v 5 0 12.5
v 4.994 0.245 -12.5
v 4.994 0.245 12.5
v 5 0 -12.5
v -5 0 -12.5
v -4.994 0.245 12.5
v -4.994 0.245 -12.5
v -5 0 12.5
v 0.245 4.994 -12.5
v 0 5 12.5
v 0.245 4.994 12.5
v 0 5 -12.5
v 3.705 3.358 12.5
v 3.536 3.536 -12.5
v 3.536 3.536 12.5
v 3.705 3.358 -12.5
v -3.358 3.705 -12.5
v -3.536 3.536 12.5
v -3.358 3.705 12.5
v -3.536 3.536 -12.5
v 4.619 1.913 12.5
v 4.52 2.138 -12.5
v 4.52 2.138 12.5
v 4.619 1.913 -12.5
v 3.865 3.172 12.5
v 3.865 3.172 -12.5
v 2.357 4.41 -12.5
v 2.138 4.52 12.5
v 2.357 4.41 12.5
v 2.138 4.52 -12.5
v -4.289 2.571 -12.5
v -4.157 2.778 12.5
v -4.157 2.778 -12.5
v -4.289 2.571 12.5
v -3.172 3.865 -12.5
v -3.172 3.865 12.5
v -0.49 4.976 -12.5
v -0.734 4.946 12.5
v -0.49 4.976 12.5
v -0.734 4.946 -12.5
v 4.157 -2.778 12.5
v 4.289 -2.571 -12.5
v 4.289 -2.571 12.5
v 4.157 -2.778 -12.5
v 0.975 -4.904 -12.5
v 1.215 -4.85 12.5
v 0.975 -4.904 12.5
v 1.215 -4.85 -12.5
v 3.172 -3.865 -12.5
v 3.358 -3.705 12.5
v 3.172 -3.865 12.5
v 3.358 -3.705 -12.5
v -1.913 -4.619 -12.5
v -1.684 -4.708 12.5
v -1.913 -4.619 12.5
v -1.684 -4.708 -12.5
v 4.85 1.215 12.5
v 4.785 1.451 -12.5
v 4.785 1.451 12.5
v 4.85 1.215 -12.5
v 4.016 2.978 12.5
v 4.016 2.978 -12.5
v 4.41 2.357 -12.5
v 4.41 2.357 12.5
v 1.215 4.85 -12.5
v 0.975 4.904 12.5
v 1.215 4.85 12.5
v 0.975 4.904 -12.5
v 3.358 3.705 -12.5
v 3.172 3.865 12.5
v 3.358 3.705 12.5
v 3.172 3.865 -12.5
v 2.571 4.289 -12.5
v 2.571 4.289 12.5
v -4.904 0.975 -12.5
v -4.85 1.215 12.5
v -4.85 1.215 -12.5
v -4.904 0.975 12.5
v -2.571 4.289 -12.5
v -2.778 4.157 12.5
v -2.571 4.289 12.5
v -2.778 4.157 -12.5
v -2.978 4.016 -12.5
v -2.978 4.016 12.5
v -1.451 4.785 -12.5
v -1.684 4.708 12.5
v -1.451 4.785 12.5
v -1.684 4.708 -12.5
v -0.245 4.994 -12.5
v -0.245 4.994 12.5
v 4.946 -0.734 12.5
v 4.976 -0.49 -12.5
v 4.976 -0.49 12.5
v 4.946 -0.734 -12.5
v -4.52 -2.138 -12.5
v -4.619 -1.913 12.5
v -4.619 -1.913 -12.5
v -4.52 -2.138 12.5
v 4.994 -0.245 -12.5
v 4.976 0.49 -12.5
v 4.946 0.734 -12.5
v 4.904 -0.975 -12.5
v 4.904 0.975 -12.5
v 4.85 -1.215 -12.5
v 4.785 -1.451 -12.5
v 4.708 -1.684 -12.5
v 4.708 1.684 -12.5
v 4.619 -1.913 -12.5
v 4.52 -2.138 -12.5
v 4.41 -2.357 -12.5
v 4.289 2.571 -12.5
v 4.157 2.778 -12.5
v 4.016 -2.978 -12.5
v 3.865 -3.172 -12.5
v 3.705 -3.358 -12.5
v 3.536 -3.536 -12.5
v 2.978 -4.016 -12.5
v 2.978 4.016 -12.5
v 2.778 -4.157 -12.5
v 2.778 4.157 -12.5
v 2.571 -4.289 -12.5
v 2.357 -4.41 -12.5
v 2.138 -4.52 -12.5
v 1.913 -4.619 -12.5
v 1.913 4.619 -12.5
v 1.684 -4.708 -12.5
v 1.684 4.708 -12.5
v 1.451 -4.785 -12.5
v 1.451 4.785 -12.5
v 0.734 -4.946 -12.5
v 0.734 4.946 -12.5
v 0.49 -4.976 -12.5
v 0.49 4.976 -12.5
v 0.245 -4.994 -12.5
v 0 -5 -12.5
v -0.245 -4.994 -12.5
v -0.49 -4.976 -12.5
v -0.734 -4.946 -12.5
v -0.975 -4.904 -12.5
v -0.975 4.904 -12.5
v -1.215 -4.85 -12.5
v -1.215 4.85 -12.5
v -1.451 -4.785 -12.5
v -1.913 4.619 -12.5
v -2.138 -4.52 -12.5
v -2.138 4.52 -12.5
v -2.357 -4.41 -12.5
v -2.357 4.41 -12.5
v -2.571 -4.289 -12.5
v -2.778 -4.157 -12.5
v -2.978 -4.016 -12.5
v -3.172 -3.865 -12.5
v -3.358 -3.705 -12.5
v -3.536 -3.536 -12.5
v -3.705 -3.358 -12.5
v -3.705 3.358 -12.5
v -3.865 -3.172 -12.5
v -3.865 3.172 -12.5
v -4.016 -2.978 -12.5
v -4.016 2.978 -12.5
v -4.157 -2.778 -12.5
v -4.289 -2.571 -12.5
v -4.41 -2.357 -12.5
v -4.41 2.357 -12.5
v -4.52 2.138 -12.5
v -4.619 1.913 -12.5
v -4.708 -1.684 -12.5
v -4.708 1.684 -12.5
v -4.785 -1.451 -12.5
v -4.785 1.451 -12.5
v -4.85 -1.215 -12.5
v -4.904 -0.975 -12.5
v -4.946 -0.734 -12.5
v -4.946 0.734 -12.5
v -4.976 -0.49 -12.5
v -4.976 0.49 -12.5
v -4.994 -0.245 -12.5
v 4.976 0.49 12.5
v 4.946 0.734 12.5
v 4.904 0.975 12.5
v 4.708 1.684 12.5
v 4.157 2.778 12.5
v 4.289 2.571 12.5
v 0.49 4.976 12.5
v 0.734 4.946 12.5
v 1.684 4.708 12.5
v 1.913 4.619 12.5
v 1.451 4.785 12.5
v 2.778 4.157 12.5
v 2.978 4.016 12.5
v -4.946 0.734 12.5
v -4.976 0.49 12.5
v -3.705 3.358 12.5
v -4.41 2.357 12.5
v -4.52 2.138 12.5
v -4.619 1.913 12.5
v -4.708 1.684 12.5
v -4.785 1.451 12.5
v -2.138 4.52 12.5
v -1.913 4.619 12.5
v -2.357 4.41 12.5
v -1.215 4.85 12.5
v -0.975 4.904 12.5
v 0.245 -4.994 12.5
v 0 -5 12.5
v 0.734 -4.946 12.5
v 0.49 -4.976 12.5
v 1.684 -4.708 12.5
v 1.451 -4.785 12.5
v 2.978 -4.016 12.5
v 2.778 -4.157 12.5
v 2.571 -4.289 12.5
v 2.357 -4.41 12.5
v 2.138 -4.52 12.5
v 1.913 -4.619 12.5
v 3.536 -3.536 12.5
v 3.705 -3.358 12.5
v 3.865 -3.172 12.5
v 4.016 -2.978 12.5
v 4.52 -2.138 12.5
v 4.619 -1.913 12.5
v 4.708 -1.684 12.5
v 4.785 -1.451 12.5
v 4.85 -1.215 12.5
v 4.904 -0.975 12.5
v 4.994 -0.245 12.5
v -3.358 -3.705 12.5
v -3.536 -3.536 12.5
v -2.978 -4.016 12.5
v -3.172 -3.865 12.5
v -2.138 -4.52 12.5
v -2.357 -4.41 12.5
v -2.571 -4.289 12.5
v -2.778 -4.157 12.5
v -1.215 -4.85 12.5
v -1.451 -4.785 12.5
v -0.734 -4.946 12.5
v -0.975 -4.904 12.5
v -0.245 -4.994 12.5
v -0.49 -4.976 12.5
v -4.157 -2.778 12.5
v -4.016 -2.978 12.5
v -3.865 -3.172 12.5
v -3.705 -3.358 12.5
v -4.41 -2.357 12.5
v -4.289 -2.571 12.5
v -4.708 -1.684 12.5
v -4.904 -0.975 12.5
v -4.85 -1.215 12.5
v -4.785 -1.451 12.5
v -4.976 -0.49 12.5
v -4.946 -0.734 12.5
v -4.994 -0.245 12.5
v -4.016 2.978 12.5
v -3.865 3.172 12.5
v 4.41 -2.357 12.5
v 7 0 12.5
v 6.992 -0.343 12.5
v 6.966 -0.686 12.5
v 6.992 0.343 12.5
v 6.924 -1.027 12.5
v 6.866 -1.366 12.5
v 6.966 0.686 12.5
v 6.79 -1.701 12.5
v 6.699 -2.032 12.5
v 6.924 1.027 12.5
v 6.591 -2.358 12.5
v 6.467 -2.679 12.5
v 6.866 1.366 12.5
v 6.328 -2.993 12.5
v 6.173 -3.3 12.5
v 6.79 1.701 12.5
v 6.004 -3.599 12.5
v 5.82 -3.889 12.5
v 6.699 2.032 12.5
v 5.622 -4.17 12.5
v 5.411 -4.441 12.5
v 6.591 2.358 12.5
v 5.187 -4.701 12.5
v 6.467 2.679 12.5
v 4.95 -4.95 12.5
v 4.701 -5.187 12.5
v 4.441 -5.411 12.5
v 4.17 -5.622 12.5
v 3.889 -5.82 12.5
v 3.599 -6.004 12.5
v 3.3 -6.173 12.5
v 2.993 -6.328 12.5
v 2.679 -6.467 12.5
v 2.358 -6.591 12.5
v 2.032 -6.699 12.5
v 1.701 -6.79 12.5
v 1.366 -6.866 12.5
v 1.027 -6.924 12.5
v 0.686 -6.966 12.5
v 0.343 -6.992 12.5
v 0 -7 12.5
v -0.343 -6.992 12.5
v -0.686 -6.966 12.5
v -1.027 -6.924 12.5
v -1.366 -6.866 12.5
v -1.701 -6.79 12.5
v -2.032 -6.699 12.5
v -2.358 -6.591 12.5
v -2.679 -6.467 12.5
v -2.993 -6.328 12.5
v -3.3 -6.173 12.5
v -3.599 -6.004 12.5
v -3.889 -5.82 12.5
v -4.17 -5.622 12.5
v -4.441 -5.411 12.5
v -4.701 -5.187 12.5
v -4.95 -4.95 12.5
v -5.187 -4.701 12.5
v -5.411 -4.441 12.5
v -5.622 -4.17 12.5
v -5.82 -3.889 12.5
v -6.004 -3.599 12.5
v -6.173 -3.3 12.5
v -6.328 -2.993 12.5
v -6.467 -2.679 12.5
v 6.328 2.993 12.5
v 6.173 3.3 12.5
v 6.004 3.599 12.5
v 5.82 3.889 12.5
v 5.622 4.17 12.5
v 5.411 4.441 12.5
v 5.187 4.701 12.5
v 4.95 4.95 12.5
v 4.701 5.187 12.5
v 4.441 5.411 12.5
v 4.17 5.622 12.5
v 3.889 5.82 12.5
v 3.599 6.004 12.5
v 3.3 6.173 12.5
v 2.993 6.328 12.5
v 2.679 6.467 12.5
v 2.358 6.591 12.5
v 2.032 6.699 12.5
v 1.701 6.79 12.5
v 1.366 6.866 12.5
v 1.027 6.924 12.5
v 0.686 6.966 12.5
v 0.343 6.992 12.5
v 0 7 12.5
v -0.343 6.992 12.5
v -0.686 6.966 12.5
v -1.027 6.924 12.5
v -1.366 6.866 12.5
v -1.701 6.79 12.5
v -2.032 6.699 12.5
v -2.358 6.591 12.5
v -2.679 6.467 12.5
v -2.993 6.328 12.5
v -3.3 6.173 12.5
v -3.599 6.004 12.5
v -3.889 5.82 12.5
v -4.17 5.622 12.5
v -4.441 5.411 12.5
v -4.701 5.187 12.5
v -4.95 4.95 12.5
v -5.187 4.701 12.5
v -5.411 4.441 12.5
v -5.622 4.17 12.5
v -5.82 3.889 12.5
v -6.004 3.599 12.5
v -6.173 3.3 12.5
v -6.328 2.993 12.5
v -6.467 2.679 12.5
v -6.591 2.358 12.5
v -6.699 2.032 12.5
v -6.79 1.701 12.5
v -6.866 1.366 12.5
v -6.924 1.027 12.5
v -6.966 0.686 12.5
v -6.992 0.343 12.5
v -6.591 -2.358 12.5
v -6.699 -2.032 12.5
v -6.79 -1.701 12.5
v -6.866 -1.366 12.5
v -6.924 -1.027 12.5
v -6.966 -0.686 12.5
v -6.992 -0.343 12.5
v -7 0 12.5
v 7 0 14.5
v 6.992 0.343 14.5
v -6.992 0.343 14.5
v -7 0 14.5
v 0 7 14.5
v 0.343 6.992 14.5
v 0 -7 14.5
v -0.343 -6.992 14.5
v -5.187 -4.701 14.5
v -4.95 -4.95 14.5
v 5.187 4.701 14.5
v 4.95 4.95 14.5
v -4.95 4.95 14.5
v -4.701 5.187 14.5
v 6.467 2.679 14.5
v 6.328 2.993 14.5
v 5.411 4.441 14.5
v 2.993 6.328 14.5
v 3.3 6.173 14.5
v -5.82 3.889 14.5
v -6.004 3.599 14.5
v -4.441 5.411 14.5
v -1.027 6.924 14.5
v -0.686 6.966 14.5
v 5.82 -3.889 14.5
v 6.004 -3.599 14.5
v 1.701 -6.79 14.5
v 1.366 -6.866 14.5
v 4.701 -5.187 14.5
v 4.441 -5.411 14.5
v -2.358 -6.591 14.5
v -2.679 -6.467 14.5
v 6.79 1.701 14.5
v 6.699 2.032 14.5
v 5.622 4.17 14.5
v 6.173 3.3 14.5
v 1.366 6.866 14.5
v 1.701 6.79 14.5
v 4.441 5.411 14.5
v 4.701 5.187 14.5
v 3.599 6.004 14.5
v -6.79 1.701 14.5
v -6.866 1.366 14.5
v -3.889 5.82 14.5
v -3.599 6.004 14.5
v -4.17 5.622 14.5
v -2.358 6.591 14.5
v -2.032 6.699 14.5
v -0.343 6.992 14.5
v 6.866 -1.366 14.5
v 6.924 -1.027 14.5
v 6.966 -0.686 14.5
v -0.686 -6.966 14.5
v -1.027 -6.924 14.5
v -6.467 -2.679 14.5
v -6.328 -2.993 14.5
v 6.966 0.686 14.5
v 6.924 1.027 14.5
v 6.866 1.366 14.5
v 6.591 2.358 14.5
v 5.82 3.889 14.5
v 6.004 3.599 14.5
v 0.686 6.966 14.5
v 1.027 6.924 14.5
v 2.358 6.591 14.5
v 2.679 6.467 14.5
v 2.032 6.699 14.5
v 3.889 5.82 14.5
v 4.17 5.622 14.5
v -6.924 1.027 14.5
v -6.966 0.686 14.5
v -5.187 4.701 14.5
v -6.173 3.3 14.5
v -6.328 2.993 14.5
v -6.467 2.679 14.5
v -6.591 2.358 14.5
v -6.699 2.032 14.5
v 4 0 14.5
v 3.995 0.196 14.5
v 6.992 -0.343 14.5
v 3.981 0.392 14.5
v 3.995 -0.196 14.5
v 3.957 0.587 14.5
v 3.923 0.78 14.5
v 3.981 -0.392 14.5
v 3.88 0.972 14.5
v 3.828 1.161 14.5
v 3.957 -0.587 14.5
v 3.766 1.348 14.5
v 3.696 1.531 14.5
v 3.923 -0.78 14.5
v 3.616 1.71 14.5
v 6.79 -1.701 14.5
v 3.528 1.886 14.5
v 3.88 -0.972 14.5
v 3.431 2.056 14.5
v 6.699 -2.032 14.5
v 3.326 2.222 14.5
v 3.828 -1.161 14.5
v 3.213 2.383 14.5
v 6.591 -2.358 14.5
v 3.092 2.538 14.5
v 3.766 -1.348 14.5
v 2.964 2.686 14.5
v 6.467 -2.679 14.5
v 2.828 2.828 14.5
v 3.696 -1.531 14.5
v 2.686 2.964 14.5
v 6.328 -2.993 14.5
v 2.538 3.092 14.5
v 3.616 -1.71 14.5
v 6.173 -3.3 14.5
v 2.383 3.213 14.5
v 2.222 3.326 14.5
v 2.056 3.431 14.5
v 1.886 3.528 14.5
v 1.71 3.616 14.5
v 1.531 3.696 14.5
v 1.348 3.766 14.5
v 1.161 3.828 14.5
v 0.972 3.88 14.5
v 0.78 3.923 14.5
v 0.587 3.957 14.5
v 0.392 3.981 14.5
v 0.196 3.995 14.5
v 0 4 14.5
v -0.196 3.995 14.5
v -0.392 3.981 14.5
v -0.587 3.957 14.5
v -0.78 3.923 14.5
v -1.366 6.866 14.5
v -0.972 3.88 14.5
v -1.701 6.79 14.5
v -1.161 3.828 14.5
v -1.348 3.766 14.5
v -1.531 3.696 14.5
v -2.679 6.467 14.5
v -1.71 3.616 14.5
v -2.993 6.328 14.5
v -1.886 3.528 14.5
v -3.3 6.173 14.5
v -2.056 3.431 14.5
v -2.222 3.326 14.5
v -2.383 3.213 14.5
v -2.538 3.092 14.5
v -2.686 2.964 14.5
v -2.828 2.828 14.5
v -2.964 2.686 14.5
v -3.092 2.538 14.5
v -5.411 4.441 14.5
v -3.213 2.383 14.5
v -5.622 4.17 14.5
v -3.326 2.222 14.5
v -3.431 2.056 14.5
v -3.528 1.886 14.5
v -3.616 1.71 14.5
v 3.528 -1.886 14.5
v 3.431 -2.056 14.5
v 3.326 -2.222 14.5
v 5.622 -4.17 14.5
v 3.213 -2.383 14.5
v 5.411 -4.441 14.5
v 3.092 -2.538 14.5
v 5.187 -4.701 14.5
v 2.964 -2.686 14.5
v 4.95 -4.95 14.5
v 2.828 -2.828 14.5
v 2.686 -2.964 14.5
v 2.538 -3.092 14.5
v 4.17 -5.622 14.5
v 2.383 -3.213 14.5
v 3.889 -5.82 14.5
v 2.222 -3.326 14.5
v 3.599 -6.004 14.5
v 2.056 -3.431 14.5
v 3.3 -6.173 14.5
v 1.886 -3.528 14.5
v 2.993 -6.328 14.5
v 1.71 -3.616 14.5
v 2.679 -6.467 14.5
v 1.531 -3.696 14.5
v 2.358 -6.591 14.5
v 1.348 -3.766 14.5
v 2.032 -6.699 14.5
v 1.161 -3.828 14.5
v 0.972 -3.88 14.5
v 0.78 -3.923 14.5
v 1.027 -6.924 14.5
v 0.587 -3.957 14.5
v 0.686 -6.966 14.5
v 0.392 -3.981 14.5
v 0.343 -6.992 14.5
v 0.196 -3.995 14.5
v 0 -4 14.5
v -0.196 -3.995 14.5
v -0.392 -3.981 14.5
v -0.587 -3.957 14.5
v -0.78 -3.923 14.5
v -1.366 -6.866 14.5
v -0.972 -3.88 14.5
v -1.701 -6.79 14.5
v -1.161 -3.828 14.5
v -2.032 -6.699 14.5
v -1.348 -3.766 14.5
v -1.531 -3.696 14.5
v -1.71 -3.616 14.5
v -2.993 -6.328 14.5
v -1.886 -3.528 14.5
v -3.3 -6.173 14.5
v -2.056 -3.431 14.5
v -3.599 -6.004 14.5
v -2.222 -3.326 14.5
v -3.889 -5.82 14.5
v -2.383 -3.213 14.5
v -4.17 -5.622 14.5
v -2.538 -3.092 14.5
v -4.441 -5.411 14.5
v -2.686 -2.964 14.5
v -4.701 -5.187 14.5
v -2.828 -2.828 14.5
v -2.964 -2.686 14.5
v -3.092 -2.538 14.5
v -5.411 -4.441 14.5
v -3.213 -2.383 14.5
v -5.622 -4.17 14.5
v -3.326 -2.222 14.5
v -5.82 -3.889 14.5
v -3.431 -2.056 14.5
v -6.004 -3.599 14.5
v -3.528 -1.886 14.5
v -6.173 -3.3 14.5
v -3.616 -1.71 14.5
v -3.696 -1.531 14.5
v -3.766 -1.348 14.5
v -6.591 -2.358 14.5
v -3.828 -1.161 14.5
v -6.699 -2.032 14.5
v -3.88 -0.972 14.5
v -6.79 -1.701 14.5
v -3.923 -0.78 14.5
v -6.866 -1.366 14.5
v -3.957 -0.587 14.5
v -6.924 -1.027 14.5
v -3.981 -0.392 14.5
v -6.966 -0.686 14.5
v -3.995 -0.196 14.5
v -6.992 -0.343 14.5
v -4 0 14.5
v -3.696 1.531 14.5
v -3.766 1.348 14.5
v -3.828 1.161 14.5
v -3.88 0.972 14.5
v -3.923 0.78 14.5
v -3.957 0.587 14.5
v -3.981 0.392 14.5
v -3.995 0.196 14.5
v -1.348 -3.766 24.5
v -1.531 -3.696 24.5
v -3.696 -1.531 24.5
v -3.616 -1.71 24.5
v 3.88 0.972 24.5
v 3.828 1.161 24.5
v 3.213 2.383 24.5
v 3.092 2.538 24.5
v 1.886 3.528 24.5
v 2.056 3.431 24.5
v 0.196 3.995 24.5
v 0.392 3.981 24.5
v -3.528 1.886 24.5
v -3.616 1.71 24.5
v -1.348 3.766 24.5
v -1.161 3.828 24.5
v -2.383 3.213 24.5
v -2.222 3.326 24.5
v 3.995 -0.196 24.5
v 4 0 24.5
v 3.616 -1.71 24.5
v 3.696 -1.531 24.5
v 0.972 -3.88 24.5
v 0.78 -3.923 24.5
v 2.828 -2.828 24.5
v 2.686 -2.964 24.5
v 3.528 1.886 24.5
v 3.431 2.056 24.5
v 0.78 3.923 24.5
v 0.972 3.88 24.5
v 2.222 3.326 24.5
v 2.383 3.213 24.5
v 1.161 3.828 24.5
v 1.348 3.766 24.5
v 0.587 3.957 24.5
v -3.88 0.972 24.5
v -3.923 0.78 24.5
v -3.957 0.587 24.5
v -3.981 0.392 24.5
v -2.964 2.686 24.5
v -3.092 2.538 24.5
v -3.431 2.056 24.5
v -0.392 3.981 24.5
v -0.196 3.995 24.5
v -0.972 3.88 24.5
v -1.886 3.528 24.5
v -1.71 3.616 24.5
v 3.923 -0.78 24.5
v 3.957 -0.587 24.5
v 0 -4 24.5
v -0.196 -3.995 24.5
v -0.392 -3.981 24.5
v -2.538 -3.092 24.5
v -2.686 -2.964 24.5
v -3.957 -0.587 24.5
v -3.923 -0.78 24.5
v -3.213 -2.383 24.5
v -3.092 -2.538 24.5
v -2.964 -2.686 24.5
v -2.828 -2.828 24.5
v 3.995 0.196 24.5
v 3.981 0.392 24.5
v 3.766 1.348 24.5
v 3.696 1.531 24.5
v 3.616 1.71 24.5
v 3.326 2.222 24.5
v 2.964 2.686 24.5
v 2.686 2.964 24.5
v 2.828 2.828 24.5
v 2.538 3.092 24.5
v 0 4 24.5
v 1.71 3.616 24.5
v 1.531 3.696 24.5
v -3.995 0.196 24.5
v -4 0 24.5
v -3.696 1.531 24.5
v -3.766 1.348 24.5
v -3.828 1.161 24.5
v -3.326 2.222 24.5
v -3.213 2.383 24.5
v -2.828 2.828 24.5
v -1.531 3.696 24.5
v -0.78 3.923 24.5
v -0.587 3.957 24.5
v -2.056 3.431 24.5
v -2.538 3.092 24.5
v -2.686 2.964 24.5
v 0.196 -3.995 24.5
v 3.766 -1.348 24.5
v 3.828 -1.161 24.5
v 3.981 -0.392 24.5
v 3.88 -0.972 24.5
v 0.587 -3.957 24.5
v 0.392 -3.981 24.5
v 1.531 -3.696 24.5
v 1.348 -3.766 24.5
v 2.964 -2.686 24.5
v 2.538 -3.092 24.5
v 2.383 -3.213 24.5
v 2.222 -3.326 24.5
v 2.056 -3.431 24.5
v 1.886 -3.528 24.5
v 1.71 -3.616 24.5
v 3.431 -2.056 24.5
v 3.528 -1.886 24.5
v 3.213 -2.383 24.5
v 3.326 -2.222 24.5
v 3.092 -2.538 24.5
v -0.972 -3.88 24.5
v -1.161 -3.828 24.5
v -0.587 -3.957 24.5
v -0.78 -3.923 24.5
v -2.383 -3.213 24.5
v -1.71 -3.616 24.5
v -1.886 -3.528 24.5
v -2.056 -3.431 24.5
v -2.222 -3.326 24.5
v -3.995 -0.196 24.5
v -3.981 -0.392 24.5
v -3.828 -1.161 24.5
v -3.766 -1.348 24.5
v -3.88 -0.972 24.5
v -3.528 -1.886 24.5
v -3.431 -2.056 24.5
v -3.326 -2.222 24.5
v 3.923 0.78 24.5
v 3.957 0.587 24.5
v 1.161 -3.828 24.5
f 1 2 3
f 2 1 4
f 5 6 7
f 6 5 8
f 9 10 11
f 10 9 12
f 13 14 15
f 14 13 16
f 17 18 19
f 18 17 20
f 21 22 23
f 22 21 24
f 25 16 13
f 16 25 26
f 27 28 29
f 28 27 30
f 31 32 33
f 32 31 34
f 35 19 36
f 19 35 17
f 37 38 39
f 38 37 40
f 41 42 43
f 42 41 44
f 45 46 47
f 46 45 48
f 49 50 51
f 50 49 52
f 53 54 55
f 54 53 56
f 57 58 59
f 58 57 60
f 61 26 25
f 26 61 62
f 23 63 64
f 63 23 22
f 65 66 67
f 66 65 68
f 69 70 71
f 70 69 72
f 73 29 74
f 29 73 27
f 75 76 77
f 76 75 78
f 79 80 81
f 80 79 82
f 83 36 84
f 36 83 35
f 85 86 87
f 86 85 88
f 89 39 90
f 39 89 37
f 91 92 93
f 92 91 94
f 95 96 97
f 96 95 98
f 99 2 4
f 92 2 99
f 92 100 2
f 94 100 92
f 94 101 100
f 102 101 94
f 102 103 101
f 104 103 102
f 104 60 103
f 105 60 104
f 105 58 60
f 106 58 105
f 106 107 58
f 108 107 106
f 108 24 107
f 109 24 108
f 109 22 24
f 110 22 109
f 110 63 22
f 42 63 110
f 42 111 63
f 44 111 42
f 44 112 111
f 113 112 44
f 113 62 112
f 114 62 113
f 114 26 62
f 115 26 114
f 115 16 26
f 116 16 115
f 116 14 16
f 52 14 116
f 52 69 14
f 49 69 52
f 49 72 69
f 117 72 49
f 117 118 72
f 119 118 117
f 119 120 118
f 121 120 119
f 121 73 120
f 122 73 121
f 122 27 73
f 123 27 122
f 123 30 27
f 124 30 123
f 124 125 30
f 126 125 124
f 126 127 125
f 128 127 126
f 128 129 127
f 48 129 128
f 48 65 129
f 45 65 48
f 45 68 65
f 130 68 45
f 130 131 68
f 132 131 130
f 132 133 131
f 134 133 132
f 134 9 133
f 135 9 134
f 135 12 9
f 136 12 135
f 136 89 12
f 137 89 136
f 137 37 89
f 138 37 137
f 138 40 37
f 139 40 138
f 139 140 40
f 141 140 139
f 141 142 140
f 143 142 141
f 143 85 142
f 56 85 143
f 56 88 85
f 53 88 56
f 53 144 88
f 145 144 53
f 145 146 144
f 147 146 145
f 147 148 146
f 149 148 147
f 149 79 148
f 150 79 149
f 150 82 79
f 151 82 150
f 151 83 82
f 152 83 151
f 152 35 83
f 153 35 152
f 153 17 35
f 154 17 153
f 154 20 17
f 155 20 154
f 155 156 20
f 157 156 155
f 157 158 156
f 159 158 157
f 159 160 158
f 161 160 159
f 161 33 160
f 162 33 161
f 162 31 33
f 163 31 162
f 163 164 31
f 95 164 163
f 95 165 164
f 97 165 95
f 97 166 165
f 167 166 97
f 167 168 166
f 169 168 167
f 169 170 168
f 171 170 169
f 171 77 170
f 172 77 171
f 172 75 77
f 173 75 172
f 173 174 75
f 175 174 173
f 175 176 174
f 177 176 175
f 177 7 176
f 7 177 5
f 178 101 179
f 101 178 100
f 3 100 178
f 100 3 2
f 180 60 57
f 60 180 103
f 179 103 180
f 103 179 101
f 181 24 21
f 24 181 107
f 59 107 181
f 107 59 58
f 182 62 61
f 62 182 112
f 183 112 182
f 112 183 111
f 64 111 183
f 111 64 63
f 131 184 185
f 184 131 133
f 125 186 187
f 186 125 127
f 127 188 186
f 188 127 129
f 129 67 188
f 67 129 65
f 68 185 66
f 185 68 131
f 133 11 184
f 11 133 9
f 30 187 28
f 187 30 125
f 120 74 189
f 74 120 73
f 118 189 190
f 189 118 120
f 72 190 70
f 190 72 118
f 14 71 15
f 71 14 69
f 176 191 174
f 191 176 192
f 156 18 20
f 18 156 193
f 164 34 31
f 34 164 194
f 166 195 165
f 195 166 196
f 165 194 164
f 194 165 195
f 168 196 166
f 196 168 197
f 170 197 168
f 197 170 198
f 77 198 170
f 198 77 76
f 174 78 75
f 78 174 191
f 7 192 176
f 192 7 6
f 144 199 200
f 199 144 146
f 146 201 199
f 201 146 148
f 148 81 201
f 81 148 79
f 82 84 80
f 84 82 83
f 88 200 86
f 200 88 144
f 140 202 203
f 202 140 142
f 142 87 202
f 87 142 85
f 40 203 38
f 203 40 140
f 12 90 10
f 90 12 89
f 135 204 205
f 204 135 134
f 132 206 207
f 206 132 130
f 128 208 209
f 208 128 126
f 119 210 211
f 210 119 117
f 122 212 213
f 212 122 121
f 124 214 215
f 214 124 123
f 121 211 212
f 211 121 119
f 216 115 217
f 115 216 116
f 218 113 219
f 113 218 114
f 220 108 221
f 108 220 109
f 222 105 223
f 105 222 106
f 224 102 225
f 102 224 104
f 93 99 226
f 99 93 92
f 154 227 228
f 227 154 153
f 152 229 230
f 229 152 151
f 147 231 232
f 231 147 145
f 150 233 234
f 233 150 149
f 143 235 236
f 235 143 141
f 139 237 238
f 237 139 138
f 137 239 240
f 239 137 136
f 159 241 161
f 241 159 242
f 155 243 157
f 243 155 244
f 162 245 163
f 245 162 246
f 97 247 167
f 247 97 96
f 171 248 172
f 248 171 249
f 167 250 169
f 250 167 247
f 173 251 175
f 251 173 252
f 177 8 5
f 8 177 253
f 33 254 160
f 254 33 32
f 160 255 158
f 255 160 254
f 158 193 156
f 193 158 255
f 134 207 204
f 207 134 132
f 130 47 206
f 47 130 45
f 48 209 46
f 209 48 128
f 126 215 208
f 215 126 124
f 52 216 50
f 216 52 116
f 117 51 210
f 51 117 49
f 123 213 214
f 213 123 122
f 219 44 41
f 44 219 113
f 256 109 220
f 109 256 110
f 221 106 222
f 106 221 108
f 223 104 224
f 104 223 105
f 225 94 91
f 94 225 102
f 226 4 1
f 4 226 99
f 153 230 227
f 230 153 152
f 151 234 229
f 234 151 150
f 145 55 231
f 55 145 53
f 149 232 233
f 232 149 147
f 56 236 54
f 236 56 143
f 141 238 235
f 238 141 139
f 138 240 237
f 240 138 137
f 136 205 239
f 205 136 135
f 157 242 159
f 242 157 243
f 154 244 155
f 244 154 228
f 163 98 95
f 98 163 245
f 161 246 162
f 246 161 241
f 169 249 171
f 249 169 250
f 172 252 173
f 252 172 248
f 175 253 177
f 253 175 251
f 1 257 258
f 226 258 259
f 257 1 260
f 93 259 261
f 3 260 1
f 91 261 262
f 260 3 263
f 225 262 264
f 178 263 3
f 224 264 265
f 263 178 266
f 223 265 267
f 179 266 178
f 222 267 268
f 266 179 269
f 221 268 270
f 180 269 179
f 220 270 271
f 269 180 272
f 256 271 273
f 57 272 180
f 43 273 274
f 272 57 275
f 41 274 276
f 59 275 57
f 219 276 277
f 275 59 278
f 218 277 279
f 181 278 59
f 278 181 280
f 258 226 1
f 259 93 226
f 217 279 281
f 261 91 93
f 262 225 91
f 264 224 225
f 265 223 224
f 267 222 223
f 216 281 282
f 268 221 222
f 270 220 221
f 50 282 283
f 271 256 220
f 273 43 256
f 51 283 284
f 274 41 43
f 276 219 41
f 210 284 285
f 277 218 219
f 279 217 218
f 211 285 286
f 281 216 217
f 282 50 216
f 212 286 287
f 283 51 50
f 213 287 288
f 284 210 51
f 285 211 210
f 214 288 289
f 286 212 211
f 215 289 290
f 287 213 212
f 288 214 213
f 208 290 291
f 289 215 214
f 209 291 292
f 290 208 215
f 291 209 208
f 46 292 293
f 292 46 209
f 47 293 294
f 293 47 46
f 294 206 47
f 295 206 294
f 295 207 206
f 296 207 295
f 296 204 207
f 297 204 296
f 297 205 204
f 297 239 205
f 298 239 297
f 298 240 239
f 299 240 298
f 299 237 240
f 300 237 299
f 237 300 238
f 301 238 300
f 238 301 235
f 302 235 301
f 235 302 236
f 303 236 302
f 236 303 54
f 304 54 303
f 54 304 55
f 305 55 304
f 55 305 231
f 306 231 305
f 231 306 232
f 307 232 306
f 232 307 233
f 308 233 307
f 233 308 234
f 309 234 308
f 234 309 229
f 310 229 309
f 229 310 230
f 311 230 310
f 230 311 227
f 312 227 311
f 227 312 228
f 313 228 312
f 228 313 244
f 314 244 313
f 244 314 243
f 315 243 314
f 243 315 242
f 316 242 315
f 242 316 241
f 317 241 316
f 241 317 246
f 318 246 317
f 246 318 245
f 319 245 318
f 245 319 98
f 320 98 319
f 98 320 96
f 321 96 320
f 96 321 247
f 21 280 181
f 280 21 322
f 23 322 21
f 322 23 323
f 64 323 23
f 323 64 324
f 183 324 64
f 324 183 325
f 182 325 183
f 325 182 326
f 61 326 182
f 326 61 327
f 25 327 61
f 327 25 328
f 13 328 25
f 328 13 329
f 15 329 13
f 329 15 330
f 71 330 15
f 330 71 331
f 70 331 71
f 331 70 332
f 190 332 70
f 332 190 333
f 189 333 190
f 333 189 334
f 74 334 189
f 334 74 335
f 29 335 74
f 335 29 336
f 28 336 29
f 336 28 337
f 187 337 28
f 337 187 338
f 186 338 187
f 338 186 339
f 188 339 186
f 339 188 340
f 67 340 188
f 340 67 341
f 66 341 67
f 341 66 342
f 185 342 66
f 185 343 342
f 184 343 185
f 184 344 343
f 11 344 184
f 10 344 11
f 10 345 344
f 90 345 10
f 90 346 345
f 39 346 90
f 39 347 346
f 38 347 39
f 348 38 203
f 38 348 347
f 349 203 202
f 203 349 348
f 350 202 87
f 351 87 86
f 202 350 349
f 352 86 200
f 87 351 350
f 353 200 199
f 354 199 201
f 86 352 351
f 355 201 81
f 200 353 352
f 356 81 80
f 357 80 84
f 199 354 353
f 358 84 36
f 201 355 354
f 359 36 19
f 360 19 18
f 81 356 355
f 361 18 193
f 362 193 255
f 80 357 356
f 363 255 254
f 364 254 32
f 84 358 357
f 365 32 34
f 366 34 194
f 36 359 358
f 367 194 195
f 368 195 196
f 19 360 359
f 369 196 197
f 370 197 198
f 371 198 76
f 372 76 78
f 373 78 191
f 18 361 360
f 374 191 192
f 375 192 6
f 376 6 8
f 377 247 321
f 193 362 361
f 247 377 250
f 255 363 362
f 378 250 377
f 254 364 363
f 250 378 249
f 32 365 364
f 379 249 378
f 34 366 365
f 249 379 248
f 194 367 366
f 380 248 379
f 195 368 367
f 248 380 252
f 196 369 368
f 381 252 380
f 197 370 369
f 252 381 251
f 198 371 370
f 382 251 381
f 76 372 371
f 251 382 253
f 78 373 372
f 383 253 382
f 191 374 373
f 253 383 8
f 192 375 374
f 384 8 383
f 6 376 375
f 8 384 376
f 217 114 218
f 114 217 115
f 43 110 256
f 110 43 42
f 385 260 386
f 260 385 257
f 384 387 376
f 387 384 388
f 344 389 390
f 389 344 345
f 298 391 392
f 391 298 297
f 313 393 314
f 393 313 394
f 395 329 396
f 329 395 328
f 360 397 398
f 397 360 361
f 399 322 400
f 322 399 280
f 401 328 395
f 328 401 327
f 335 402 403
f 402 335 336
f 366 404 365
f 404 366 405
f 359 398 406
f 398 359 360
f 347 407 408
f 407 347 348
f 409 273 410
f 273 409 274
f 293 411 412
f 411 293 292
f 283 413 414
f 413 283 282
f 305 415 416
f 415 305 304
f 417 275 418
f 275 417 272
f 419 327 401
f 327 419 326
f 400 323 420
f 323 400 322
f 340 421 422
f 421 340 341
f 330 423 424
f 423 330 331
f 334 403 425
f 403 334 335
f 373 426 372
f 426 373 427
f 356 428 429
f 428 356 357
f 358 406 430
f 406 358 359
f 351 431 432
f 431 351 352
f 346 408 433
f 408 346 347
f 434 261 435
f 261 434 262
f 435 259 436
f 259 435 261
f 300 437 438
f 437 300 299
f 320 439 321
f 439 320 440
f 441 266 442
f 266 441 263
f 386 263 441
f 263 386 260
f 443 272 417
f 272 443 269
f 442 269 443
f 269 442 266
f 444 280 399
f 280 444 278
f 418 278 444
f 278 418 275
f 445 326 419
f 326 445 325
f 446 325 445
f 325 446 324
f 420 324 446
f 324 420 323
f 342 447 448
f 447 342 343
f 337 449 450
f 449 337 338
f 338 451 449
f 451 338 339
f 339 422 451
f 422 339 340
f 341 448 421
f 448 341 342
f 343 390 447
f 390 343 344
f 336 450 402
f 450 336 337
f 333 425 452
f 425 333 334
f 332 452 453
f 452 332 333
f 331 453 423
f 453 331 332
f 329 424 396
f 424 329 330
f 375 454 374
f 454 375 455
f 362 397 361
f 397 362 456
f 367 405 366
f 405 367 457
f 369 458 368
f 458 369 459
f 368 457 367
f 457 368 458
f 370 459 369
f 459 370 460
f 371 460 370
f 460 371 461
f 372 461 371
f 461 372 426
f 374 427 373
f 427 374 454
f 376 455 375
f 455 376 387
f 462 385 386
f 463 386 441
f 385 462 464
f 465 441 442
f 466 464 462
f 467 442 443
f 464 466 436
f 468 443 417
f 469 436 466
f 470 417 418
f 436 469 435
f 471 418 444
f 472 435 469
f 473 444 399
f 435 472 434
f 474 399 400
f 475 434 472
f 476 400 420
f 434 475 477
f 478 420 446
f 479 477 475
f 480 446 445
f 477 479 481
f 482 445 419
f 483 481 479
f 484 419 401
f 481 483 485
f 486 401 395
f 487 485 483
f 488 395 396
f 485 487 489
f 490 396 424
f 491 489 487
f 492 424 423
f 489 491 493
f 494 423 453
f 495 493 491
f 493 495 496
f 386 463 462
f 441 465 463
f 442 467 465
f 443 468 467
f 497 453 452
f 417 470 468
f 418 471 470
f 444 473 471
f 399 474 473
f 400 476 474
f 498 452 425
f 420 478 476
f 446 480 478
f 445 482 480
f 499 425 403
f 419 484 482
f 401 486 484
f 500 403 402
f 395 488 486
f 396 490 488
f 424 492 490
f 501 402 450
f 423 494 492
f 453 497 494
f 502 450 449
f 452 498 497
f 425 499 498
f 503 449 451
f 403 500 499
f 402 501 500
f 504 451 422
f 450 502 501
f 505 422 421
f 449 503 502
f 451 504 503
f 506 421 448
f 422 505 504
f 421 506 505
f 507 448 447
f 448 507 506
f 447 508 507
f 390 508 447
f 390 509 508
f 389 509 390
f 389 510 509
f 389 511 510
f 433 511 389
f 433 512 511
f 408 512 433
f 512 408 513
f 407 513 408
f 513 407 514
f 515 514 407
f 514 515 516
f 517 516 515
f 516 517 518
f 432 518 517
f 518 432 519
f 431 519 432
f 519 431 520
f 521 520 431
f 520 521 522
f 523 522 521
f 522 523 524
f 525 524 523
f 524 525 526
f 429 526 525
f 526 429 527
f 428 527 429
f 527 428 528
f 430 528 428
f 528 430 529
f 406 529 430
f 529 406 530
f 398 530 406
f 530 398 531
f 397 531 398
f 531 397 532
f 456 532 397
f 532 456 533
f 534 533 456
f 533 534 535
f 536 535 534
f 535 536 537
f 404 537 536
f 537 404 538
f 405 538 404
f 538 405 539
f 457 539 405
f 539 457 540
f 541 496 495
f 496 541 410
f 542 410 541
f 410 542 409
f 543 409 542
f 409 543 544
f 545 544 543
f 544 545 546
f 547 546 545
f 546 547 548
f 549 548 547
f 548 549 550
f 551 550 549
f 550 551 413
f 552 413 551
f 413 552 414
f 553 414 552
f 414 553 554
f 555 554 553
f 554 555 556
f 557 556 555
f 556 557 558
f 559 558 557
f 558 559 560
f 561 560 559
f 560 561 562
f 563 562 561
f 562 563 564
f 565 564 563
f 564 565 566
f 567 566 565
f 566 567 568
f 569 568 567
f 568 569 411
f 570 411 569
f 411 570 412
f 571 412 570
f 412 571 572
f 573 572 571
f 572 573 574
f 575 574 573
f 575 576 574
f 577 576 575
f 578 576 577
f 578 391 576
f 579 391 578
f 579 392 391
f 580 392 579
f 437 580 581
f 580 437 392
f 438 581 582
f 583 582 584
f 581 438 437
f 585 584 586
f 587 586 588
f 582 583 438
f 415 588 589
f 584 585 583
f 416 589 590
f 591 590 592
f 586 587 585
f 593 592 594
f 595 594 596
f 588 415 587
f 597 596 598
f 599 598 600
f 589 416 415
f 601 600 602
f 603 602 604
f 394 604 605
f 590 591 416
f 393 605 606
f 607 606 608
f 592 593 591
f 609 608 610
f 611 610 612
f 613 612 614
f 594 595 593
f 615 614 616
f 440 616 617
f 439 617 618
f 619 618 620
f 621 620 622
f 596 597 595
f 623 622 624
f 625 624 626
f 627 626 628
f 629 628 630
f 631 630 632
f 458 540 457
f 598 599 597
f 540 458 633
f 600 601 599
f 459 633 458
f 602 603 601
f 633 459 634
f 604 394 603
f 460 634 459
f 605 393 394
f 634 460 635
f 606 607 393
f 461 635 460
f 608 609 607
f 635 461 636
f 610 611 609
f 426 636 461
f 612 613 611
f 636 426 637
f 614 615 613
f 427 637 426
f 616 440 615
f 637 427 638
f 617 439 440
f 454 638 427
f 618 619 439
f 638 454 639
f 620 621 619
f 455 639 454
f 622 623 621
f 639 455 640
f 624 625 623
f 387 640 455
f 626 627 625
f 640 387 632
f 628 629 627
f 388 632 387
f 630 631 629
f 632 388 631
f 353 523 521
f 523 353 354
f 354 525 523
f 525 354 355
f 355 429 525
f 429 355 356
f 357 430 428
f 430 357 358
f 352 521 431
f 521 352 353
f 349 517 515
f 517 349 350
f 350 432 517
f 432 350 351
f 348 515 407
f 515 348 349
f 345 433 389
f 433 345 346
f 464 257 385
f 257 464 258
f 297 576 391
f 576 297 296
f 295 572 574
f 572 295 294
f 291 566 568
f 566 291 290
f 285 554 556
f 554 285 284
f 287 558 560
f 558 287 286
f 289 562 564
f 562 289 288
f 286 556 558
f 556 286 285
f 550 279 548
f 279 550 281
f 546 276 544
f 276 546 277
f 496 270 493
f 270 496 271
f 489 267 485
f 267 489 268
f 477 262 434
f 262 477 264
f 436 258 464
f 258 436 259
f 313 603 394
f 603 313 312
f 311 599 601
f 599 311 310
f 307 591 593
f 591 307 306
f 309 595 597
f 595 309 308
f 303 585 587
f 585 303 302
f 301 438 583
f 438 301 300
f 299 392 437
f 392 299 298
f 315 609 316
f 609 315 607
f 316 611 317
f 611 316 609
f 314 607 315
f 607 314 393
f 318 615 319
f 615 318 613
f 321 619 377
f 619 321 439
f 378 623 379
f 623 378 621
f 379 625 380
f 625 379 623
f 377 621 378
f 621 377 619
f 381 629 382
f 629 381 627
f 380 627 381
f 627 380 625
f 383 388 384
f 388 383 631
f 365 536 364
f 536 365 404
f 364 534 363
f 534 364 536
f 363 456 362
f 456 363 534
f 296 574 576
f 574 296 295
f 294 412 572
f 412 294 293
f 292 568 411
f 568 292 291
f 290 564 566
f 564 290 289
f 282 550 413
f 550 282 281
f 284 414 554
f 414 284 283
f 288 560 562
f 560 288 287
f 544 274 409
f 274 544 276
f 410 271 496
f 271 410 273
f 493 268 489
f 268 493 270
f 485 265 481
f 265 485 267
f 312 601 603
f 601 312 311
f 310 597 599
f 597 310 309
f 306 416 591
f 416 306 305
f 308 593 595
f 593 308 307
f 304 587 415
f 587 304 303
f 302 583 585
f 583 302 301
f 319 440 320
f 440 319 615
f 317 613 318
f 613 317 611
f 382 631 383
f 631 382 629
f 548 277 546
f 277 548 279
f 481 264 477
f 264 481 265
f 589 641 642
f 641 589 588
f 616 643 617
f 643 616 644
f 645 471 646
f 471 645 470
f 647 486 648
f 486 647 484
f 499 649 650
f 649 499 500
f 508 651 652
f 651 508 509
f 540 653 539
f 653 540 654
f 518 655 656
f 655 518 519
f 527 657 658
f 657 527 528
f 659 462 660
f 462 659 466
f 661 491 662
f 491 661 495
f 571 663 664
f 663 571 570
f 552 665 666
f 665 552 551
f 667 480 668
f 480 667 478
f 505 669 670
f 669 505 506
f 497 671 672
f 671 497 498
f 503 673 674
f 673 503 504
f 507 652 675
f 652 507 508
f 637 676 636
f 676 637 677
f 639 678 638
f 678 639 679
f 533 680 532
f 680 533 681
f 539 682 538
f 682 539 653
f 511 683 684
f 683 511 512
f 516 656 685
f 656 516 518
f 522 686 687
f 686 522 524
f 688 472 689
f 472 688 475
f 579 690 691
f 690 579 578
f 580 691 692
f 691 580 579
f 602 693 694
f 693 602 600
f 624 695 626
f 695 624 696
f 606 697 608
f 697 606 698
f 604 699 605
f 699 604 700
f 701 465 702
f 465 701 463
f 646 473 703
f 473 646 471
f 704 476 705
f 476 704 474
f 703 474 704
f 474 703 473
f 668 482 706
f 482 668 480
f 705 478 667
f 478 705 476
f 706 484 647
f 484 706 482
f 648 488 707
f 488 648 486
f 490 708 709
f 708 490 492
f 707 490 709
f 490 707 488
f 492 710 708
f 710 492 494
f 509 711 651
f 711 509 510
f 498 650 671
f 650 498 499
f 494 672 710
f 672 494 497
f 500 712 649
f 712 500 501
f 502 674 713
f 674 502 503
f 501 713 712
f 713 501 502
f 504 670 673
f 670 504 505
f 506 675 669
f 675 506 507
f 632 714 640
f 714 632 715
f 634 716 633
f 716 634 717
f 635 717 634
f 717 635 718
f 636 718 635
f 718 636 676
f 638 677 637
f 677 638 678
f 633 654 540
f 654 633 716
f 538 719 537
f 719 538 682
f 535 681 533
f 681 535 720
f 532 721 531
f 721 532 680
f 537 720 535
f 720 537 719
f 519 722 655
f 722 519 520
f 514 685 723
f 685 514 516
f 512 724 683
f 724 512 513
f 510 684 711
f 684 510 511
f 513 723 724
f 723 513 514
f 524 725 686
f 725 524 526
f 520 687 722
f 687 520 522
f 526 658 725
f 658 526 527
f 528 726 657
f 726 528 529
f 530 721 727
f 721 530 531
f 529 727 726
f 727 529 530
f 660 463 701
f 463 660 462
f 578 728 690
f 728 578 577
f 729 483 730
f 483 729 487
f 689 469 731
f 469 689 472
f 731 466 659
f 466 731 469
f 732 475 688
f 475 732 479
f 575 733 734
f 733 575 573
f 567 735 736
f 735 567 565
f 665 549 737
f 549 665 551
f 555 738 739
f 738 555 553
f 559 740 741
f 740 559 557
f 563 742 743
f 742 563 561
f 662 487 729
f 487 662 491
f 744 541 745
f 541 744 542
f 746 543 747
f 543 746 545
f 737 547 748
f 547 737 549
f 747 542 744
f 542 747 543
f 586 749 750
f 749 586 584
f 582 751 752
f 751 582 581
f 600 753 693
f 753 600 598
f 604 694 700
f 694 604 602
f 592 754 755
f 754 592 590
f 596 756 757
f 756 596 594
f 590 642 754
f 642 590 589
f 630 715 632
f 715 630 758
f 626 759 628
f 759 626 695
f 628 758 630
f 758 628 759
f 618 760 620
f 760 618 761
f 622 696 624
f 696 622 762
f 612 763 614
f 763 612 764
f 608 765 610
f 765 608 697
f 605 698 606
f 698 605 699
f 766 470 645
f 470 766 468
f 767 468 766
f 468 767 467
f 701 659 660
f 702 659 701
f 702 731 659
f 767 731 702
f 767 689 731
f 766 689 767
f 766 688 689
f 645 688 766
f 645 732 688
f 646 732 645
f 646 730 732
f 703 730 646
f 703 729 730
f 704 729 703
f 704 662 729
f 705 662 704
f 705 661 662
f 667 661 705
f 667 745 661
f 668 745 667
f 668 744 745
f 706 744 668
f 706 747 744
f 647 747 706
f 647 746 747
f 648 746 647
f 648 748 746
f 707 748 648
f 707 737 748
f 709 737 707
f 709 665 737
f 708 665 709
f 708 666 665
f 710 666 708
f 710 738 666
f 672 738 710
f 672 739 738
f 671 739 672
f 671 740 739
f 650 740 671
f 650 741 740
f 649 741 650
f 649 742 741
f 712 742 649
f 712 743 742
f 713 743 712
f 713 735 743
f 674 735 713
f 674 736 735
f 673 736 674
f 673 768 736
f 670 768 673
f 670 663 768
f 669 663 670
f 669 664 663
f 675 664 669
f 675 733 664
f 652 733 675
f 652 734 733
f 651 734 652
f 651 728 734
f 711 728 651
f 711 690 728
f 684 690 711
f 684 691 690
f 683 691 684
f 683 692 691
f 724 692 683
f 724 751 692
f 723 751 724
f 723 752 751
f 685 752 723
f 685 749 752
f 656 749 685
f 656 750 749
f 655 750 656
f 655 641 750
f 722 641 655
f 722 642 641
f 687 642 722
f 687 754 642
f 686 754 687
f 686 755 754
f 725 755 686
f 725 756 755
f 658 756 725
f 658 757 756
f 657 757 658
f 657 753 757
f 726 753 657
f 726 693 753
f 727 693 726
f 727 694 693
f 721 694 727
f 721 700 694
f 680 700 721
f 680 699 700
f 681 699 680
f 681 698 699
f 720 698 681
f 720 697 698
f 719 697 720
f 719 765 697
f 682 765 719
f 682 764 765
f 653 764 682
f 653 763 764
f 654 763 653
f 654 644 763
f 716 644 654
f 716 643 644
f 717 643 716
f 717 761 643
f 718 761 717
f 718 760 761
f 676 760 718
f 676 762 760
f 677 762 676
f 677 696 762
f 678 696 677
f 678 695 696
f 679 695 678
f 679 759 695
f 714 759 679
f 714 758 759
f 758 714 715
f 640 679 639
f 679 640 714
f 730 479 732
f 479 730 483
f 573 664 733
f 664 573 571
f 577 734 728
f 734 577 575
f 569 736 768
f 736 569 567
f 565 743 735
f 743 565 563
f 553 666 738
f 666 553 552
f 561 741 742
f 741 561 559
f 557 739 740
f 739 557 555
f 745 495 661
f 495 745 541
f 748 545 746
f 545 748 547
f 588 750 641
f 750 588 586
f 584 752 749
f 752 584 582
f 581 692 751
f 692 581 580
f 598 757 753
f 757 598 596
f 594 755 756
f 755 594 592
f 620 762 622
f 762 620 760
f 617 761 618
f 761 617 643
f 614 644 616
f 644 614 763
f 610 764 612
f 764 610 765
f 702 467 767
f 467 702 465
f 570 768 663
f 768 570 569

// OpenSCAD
$fn = 128;

bottomDiameter = 10;
bottomHeight = 25;

lipDiameter = 14;
lipHeight = 2;

topDiameter = 8;
// topDiameter = 10;
topHeight = 10;
// topHeight = 18;

cylinder(d = bottomDiameter, h = bottomHeight, center = true);

translate([0, 0, (bottomHeight / 2) + (lipHeight / 2)]) {
    cylinder(d = lipDiameter, h = lipHeight, center = true);
}

translate([0, 0, (bottomHeight / 2) + lipHeight + (topHeight / 2)]) {
    cylinder(d = topDiameter, h = topHeight, center = true);
}
